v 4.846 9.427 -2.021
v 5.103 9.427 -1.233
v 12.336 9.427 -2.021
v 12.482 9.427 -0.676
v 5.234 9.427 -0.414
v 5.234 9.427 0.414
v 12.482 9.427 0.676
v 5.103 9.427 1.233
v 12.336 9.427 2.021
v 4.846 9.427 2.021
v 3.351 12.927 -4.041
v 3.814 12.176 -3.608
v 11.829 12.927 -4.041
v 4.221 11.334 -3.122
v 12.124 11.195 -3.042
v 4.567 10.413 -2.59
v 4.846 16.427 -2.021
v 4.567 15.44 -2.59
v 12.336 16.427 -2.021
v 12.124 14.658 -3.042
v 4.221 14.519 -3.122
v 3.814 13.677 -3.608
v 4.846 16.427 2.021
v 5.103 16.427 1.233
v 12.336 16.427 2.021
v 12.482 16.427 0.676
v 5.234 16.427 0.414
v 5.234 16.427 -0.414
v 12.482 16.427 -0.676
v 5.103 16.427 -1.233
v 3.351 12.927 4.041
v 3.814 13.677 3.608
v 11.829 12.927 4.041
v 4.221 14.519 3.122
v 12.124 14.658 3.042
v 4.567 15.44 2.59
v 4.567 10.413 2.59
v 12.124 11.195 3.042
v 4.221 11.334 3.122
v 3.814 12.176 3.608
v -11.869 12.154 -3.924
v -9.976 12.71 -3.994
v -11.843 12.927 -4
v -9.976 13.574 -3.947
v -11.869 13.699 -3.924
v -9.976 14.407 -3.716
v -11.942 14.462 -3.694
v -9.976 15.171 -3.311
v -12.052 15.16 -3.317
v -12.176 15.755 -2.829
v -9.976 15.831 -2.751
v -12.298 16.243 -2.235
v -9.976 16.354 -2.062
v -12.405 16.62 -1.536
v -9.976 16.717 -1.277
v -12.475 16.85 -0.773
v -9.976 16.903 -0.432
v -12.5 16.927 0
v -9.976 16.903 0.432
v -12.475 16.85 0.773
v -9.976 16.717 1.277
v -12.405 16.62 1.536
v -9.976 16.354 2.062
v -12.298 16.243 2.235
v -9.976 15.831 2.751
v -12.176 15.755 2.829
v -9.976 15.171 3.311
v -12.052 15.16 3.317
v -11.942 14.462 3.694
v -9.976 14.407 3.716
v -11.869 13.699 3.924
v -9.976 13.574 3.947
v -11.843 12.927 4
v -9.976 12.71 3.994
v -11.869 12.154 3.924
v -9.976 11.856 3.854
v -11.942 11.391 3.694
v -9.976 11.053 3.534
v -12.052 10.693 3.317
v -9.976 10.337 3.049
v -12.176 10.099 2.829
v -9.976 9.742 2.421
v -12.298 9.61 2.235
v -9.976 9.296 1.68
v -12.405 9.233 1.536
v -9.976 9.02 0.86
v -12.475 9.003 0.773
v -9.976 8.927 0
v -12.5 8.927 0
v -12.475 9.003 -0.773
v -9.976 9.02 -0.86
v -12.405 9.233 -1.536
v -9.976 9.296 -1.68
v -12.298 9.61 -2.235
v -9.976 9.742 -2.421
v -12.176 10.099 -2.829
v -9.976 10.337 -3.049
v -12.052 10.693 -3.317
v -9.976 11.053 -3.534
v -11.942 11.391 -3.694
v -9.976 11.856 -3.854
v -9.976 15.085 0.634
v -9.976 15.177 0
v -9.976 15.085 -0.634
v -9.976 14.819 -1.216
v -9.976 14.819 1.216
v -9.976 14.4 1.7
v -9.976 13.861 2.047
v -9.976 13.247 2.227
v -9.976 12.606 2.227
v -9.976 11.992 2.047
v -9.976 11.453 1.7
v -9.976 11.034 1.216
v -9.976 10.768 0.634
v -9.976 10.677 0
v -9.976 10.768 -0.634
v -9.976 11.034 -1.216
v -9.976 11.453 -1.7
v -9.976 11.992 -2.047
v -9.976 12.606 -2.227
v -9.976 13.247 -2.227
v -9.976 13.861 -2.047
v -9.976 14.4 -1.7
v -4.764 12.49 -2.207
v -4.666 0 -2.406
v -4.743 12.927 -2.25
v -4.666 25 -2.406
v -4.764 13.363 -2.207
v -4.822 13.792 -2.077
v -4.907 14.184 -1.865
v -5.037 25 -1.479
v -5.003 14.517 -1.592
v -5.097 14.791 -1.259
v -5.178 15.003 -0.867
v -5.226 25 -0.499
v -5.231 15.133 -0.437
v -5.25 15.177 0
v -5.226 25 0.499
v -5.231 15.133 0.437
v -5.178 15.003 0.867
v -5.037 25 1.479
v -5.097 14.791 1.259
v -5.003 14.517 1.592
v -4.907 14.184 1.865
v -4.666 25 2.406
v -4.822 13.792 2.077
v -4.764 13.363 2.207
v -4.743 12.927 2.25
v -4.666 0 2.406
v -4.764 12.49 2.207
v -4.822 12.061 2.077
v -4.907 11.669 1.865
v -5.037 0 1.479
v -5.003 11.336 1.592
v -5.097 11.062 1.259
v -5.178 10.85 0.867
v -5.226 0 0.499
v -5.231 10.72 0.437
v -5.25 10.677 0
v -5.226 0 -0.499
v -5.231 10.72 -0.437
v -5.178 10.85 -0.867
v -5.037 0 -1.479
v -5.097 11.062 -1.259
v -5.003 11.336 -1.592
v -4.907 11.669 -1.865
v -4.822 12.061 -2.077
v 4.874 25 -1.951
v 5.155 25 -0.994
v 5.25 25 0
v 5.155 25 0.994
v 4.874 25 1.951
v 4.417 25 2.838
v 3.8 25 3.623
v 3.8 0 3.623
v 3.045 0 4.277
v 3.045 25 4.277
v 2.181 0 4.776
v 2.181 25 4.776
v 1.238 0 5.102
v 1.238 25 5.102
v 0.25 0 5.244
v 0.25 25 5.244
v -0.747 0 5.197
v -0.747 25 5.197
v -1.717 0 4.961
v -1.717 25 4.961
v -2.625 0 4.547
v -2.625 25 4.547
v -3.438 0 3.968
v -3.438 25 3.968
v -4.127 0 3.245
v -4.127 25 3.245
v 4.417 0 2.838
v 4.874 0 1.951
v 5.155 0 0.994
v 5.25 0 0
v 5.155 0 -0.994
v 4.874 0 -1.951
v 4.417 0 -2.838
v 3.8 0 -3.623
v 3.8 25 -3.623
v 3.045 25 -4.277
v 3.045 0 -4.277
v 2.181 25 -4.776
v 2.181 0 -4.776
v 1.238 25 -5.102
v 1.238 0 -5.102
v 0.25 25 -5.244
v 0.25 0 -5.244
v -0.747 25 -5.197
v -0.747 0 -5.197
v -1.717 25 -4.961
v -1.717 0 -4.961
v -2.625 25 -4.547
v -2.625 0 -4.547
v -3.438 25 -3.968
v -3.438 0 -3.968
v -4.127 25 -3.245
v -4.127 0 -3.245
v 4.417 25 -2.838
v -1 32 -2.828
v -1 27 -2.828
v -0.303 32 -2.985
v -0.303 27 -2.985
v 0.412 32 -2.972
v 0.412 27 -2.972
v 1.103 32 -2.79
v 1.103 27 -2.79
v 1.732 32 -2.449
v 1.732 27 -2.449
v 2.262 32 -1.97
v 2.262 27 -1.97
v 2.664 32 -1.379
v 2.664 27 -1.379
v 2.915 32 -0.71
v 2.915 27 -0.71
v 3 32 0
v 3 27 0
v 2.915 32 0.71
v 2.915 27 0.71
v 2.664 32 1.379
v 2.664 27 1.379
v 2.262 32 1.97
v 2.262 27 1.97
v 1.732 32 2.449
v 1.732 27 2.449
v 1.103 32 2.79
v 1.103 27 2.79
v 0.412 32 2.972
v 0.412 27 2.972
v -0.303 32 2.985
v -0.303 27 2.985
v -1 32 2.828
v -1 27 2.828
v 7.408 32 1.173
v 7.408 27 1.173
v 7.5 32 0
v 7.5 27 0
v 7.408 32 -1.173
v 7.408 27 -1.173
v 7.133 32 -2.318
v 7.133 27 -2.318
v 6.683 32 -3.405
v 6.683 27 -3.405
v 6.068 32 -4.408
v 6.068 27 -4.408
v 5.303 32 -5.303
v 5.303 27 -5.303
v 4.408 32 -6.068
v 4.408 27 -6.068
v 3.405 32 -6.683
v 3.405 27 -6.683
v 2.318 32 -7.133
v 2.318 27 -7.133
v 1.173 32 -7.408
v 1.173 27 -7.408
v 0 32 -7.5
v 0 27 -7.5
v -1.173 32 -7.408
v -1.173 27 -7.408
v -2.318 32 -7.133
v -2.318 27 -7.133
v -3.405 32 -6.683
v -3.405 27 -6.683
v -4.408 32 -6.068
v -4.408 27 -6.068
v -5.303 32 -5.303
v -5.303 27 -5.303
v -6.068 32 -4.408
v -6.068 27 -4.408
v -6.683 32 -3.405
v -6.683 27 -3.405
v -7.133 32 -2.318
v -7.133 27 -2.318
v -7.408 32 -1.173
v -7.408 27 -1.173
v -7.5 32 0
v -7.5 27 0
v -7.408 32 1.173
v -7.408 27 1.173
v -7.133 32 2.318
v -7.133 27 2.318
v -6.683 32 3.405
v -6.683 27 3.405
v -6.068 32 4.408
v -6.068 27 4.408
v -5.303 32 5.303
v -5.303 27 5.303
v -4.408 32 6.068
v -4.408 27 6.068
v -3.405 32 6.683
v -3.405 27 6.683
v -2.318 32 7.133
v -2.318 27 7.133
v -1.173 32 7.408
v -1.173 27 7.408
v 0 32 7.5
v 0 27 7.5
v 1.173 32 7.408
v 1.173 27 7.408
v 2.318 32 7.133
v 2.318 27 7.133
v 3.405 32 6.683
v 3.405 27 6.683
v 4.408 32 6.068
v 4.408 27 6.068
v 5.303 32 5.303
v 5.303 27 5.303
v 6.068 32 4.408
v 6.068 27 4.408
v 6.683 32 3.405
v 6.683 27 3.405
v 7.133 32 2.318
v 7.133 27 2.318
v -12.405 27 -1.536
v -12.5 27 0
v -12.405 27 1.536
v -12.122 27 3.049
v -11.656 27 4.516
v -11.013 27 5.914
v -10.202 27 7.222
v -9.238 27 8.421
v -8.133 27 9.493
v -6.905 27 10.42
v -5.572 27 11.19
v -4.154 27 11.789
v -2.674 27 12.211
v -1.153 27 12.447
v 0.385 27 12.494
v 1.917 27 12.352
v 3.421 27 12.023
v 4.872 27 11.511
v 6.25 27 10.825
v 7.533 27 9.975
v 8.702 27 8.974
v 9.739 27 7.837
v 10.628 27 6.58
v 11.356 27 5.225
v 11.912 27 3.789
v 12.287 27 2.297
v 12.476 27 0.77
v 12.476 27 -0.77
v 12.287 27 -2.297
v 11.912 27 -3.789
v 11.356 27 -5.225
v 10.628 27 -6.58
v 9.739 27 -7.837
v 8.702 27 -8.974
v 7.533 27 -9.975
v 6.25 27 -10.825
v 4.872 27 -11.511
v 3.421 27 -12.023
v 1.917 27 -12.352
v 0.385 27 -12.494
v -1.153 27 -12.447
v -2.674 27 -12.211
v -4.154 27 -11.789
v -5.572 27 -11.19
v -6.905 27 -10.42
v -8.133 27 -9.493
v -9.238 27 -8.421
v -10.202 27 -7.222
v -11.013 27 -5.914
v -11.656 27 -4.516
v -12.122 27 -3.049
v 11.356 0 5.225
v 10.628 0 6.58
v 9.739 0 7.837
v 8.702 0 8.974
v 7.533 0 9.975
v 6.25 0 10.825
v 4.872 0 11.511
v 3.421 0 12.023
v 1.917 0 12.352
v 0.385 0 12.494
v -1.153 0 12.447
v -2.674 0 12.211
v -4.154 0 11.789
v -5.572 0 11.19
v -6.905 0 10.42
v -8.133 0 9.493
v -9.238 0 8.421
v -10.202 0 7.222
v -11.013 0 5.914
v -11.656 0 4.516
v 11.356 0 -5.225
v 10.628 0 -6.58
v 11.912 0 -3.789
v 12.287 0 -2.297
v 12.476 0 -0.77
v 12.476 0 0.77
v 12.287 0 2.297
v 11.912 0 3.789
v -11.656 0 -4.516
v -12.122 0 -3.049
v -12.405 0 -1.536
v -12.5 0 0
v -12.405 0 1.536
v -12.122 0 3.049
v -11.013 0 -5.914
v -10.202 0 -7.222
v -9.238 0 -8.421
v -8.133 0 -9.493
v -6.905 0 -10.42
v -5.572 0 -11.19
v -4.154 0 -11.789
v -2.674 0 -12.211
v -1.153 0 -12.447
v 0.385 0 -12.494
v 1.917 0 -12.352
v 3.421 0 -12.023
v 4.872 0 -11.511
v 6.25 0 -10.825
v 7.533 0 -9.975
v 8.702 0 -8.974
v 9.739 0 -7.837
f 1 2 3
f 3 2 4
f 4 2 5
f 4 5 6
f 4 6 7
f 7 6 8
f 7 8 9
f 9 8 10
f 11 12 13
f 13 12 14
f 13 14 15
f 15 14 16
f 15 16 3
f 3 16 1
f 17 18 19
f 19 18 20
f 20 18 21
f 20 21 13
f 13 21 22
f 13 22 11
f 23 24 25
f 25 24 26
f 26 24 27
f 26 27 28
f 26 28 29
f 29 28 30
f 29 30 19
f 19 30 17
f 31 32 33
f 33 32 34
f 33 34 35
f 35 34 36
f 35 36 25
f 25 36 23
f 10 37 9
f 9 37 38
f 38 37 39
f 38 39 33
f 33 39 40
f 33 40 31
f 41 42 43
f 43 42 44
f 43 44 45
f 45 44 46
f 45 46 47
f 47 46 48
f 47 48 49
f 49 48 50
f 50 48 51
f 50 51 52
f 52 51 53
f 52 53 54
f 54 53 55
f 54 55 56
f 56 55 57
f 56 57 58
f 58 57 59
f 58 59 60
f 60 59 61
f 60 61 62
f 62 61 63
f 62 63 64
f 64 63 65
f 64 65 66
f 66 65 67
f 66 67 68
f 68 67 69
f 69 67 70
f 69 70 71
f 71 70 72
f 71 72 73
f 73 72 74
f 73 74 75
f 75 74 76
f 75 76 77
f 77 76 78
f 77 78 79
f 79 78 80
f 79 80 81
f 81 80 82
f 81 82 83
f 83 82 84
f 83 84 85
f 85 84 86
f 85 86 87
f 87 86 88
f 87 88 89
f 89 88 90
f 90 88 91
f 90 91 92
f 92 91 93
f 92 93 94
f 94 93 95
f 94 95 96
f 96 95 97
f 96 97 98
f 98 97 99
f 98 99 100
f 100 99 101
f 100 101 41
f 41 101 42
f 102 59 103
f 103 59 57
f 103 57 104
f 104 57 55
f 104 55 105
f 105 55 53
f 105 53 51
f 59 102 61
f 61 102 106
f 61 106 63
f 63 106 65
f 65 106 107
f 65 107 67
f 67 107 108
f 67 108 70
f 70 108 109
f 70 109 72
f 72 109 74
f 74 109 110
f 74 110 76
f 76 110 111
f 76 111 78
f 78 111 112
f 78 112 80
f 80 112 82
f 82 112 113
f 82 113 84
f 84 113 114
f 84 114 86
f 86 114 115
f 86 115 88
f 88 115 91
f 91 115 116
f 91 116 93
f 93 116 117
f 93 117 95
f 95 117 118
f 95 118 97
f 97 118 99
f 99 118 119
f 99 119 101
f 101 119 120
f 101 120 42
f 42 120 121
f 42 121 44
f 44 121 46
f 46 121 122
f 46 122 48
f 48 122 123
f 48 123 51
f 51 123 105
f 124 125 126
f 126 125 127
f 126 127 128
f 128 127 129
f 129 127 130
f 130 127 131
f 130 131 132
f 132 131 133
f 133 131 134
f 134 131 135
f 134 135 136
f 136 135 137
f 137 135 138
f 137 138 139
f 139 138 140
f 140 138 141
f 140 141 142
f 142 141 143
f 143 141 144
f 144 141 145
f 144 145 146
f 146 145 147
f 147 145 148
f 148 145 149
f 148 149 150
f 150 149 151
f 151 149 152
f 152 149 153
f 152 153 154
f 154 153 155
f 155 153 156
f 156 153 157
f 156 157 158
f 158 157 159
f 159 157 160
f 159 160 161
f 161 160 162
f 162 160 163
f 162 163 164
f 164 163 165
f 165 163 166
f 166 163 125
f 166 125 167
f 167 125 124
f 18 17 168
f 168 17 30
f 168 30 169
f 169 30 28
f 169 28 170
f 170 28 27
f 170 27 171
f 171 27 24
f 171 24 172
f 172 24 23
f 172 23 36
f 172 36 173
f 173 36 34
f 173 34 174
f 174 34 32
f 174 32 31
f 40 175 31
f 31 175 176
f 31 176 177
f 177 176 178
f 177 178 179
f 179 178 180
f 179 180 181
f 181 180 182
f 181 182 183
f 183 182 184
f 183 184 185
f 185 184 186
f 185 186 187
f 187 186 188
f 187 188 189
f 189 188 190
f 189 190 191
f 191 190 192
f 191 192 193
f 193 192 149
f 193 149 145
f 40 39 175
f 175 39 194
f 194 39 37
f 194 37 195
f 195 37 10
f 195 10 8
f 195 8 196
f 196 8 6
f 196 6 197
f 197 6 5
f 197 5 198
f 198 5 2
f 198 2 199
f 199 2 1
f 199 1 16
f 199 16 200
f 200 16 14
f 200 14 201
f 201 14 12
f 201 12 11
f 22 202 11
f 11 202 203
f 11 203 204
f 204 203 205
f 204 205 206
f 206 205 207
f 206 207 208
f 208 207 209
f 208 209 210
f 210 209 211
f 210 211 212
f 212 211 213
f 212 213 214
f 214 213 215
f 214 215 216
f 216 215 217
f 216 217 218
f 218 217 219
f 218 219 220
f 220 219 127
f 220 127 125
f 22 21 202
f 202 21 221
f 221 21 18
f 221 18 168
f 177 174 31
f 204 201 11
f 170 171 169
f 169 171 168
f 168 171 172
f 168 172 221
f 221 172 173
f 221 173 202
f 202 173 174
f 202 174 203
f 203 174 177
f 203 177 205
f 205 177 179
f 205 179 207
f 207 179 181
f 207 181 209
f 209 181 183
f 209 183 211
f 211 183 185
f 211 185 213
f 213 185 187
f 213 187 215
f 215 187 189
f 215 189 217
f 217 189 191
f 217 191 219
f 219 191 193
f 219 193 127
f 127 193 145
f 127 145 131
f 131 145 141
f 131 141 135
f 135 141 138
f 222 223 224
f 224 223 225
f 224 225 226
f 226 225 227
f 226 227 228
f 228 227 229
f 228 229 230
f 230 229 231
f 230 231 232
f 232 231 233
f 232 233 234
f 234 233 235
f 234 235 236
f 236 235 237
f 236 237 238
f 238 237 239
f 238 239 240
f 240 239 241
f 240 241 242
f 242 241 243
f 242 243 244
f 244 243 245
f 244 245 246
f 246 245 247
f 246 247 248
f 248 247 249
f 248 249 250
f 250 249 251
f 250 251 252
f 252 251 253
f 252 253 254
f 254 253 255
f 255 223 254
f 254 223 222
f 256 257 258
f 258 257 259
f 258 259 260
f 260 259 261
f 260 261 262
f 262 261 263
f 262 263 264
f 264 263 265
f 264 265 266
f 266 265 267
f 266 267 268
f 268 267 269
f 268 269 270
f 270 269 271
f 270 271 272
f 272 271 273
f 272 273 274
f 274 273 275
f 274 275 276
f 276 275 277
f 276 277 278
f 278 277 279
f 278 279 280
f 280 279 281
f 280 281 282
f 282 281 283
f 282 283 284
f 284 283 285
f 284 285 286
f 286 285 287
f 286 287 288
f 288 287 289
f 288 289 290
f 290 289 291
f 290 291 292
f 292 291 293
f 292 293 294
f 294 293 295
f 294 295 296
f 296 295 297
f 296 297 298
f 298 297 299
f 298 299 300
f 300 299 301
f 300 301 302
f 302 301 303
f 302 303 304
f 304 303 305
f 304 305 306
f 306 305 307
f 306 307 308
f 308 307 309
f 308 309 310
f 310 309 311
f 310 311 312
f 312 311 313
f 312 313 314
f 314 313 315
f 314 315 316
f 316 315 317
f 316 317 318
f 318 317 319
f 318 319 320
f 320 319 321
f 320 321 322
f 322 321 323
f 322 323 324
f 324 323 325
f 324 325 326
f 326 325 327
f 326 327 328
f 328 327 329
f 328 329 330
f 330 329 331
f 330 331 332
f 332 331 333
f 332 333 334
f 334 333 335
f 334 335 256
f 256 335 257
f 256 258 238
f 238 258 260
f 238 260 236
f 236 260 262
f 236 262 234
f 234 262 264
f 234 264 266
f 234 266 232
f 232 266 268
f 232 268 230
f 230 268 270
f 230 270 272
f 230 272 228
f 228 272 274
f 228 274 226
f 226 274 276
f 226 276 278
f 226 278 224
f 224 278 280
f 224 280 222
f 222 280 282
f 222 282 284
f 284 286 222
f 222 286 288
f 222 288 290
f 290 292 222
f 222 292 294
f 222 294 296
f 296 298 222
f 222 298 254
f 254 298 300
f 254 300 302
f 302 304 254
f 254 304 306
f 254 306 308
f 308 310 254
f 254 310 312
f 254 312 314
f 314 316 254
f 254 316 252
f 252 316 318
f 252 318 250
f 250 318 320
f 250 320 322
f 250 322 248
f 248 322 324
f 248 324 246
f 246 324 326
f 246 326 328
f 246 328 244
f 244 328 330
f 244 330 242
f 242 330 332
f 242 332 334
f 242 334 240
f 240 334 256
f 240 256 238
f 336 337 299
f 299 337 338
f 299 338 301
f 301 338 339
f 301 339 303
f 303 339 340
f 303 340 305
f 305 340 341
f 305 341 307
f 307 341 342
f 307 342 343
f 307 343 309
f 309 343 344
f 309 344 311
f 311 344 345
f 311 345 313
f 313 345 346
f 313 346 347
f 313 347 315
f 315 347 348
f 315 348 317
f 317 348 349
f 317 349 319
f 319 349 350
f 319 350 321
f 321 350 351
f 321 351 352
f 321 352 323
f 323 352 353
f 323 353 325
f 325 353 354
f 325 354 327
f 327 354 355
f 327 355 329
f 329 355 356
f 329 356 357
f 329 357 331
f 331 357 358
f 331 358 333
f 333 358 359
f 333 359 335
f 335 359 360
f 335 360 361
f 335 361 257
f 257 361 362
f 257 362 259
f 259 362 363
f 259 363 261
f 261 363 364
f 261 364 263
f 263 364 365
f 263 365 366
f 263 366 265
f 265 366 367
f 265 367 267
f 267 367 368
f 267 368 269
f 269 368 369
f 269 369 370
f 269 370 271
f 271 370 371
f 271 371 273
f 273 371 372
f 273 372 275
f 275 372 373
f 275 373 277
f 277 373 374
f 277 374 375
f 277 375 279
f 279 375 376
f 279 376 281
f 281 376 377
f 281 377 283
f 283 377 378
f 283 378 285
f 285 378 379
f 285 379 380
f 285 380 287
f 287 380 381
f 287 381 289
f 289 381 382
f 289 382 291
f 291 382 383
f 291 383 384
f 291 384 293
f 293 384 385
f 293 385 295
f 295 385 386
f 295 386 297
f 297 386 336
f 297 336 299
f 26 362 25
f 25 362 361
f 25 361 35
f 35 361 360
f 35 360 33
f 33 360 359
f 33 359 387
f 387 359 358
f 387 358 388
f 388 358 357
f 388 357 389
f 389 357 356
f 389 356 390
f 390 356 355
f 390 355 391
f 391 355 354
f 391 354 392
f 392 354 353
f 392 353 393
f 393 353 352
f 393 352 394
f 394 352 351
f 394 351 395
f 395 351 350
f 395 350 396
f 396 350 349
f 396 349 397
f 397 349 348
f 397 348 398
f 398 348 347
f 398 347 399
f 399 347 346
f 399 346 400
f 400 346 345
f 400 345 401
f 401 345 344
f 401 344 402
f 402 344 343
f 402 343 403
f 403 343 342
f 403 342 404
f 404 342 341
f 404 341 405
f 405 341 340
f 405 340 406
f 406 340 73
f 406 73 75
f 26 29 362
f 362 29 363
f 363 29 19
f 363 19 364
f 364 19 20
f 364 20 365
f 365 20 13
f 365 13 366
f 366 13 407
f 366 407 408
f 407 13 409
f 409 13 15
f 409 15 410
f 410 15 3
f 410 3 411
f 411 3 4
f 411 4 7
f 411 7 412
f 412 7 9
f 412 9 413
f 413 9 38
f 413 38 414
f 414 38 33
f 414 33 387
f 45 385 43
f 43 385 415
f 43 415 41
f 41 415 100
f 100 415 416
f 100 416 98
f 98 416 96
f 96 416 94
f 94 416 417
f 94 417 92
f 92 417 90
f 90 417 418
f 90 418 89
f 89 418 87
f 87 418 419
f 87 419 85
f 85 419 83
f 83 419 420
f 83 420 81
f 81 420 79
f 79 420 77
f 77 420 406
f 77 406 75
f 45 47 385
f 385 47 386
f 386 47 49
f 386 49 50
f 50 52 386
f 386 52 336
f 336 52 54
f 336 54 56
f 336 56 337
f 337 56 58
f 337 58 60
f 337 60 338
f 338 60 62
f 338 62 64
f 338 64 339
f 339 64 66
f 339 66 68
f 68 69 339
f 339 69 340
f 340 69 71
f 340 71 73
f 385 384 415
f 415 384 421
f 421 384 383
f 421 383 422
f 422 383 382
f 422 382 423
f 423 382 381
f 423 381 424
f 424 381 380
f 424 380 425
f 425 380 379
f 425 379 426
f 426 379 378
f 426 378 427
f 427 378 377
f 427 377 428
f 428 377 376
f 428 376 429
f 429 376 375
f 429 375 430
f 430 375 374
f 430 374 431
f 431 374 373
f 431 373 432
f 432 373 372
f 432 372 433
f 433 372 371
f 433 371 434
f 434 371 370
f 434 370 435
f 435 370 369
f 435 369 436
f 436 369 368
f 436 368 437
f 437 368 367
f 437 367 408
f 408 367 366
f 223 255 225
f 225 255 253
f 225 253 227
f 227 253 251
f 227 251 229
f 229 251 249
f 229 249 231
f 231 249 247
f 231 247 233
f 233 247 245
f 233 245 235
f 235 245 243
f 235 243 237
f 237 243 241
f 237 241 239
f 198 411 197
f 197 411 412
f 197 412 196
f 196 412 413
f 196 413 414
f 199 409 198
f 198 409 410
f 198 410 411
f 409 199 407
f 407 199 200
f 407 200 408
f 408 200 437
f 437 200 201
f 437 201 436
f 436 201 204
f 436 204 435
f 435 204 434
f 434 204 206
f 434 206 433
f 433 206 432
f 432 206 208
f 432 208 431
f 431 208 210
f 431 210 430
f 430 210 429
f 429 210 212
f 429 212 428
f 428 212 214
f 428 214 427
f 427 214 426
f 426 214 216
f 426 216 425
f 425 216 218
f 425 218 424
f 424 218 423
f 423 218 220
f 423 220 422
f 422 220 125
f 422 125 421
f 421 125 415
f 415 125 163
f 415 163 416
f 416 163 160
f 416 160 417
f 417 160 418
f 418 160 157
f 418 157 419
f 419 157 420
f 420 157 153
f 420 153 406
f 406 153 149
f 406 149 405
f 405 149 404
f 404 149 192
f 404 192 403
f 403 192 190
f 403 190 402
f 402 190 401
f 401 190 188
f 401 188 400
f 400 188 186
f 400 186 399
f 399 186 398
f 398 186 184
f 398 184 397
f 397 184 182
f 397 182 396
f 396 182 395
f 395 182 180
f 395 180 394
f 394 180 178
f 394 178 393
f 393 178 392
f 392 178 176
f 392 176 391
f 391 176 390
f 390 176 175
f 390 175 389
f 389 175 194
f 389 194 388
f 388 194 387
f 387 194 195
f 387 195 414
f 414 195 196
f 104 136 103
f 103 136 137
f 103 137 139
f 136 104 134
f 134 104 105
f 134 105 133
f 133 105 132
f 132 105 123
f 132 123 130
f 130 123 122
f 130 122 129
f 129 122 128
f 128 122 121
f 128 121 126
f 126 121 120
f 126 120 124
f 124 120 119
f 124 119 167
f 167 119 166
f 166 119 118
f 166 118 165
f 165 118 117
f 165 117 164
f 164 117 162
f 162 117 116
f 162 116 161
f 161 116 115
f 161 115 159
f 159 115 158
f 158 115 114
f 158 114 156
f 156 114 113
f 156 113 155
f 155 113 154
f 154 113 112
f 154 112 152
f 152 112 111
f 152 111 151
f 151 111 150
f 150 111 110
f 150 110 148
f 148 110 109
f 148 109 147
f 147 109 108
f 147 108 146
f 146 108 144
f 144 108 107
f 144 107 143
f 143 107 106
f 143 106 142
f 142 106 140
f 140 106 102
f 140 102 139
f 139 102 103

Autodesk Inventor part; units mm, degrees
ref_plane "YZ Plane" through (0, 0, 0) normal (1, 0, 0) x (0, 1, 0)
ref_plane "XZ Plane" through (0, 0, 0) normal (0, 1, 0) x (-1, 0, 0)
ref_plane "XY Plane" through (0, 0, 0) normal (0, 0, 1) x (1, 0, 0)
sketch "Sketch1" plane through (0, 0, 0) normal (0, 1, 0) x (-1, 0, 0)
  circle A0 centre (0, 0) radius 12.5
  dimension "d0" = 25
extrude "Extrusion1" add sketch "Sketch1" along normal blind 27
sketch "Sketch2" plane through (0, 27, 0) normal (0, 1, 0) x (1, 0, 0)
  circle A0 centre (0, 0) radius 7.5
  arc A1 (-1, -2.8284) -> (-1, 2.8284) centre (0, 0) ccw
  line L0 (3, 0) -> (-1, 0) construction
  line L1 (-1, 0) -> (-1, 2.8284) construction
  line L2 (-1, 2.8284) -> (-1, -2.8284)
  dimension "d4" = 15
  dimension "d5" = 6
  dimension "d6" = 4
extrude "Extrusion2" add sketch "Sketch2" along normal blind 5
sketch "Sketch3" plane through (0, 0, 0) normal (0, -1, 0) x (1, 0, 0)
  circle A0 centre (0, 0) radius 5.25
  dimension "d9" = 10.5
extrude "Extrusion3" cut sketch "Sketch3" against normal blind 25
sketch "Sketch6" plane through (0, 0, 0) normal (0, 0, 1) x (1, 0, 0)
  line L0 (0, 12.9265) -> (-19.9756, 12.9265) construction
  line L1 (0, 12.9265) -> (20.0738, 12.9265) construction
  line L2 (0, 0) -> (0, 12.9) construction
  dimension "d19" = 12.9
ref_plane "Work Plane1" through (-19.9756, 12.9265, 0) normal (-1, 0, 0) x (0, -1, 0)
sketch "Sketch7" plane through (-19.9756, 12.9265, 0) normal (-1, 0, 0) x (0, -1, 0)
  circle A0 centre (0, 0) radius 4
  point P0 (12.9265, 0)
  dimension "d16" = 8
extrude "Extrusion5" cut sketch "Sketch7" against normal blind 10
ref_plane "Work Plane2" through (20.0738, 12.9265, 0) normal (1, 0, 0) x (0, 1, 0)
sketch "Sketch8" plane through (20.0738, 12.9265, 0) normal (1, 0, 0) x (0, 1, 0)
  line L0 (-3.5, -2.0207) -> (-3.5, 2.0207)
  line L1 (-3.5, 2.0207) -> (0, 4.0415)
  line L2 (0, 4.0415) -> (3.5, 2.0207)
  line L3 (3.5, 2.0207) -> (3.5, -2.0207)
  line L4 (3.5, -2.0207) -> (0, -4.0415)
  line L5 (0, -4.0415) -> (-3.5, -2.0207)
  point P0 (-12.9265, 0)
  point P1 (0, 0)
extrude "Extrusion6" cut sketch "Sketch8" against normal blind 17.9375
sketch "Sketch9" plane through (-19.9756, 12.9265, 0) normal (-1, 0, 0) x (0, -1, 0)
  circle A0 centre (0, 0) radius 2.25
  point P0 (12.9265, 0)
  dimension "d22" = 4.5
extrude "Extrusion7" cut sketch "Sketch9" against normal blind 17.9375
properties part number "StuurPotentiometerConnector3.0"
